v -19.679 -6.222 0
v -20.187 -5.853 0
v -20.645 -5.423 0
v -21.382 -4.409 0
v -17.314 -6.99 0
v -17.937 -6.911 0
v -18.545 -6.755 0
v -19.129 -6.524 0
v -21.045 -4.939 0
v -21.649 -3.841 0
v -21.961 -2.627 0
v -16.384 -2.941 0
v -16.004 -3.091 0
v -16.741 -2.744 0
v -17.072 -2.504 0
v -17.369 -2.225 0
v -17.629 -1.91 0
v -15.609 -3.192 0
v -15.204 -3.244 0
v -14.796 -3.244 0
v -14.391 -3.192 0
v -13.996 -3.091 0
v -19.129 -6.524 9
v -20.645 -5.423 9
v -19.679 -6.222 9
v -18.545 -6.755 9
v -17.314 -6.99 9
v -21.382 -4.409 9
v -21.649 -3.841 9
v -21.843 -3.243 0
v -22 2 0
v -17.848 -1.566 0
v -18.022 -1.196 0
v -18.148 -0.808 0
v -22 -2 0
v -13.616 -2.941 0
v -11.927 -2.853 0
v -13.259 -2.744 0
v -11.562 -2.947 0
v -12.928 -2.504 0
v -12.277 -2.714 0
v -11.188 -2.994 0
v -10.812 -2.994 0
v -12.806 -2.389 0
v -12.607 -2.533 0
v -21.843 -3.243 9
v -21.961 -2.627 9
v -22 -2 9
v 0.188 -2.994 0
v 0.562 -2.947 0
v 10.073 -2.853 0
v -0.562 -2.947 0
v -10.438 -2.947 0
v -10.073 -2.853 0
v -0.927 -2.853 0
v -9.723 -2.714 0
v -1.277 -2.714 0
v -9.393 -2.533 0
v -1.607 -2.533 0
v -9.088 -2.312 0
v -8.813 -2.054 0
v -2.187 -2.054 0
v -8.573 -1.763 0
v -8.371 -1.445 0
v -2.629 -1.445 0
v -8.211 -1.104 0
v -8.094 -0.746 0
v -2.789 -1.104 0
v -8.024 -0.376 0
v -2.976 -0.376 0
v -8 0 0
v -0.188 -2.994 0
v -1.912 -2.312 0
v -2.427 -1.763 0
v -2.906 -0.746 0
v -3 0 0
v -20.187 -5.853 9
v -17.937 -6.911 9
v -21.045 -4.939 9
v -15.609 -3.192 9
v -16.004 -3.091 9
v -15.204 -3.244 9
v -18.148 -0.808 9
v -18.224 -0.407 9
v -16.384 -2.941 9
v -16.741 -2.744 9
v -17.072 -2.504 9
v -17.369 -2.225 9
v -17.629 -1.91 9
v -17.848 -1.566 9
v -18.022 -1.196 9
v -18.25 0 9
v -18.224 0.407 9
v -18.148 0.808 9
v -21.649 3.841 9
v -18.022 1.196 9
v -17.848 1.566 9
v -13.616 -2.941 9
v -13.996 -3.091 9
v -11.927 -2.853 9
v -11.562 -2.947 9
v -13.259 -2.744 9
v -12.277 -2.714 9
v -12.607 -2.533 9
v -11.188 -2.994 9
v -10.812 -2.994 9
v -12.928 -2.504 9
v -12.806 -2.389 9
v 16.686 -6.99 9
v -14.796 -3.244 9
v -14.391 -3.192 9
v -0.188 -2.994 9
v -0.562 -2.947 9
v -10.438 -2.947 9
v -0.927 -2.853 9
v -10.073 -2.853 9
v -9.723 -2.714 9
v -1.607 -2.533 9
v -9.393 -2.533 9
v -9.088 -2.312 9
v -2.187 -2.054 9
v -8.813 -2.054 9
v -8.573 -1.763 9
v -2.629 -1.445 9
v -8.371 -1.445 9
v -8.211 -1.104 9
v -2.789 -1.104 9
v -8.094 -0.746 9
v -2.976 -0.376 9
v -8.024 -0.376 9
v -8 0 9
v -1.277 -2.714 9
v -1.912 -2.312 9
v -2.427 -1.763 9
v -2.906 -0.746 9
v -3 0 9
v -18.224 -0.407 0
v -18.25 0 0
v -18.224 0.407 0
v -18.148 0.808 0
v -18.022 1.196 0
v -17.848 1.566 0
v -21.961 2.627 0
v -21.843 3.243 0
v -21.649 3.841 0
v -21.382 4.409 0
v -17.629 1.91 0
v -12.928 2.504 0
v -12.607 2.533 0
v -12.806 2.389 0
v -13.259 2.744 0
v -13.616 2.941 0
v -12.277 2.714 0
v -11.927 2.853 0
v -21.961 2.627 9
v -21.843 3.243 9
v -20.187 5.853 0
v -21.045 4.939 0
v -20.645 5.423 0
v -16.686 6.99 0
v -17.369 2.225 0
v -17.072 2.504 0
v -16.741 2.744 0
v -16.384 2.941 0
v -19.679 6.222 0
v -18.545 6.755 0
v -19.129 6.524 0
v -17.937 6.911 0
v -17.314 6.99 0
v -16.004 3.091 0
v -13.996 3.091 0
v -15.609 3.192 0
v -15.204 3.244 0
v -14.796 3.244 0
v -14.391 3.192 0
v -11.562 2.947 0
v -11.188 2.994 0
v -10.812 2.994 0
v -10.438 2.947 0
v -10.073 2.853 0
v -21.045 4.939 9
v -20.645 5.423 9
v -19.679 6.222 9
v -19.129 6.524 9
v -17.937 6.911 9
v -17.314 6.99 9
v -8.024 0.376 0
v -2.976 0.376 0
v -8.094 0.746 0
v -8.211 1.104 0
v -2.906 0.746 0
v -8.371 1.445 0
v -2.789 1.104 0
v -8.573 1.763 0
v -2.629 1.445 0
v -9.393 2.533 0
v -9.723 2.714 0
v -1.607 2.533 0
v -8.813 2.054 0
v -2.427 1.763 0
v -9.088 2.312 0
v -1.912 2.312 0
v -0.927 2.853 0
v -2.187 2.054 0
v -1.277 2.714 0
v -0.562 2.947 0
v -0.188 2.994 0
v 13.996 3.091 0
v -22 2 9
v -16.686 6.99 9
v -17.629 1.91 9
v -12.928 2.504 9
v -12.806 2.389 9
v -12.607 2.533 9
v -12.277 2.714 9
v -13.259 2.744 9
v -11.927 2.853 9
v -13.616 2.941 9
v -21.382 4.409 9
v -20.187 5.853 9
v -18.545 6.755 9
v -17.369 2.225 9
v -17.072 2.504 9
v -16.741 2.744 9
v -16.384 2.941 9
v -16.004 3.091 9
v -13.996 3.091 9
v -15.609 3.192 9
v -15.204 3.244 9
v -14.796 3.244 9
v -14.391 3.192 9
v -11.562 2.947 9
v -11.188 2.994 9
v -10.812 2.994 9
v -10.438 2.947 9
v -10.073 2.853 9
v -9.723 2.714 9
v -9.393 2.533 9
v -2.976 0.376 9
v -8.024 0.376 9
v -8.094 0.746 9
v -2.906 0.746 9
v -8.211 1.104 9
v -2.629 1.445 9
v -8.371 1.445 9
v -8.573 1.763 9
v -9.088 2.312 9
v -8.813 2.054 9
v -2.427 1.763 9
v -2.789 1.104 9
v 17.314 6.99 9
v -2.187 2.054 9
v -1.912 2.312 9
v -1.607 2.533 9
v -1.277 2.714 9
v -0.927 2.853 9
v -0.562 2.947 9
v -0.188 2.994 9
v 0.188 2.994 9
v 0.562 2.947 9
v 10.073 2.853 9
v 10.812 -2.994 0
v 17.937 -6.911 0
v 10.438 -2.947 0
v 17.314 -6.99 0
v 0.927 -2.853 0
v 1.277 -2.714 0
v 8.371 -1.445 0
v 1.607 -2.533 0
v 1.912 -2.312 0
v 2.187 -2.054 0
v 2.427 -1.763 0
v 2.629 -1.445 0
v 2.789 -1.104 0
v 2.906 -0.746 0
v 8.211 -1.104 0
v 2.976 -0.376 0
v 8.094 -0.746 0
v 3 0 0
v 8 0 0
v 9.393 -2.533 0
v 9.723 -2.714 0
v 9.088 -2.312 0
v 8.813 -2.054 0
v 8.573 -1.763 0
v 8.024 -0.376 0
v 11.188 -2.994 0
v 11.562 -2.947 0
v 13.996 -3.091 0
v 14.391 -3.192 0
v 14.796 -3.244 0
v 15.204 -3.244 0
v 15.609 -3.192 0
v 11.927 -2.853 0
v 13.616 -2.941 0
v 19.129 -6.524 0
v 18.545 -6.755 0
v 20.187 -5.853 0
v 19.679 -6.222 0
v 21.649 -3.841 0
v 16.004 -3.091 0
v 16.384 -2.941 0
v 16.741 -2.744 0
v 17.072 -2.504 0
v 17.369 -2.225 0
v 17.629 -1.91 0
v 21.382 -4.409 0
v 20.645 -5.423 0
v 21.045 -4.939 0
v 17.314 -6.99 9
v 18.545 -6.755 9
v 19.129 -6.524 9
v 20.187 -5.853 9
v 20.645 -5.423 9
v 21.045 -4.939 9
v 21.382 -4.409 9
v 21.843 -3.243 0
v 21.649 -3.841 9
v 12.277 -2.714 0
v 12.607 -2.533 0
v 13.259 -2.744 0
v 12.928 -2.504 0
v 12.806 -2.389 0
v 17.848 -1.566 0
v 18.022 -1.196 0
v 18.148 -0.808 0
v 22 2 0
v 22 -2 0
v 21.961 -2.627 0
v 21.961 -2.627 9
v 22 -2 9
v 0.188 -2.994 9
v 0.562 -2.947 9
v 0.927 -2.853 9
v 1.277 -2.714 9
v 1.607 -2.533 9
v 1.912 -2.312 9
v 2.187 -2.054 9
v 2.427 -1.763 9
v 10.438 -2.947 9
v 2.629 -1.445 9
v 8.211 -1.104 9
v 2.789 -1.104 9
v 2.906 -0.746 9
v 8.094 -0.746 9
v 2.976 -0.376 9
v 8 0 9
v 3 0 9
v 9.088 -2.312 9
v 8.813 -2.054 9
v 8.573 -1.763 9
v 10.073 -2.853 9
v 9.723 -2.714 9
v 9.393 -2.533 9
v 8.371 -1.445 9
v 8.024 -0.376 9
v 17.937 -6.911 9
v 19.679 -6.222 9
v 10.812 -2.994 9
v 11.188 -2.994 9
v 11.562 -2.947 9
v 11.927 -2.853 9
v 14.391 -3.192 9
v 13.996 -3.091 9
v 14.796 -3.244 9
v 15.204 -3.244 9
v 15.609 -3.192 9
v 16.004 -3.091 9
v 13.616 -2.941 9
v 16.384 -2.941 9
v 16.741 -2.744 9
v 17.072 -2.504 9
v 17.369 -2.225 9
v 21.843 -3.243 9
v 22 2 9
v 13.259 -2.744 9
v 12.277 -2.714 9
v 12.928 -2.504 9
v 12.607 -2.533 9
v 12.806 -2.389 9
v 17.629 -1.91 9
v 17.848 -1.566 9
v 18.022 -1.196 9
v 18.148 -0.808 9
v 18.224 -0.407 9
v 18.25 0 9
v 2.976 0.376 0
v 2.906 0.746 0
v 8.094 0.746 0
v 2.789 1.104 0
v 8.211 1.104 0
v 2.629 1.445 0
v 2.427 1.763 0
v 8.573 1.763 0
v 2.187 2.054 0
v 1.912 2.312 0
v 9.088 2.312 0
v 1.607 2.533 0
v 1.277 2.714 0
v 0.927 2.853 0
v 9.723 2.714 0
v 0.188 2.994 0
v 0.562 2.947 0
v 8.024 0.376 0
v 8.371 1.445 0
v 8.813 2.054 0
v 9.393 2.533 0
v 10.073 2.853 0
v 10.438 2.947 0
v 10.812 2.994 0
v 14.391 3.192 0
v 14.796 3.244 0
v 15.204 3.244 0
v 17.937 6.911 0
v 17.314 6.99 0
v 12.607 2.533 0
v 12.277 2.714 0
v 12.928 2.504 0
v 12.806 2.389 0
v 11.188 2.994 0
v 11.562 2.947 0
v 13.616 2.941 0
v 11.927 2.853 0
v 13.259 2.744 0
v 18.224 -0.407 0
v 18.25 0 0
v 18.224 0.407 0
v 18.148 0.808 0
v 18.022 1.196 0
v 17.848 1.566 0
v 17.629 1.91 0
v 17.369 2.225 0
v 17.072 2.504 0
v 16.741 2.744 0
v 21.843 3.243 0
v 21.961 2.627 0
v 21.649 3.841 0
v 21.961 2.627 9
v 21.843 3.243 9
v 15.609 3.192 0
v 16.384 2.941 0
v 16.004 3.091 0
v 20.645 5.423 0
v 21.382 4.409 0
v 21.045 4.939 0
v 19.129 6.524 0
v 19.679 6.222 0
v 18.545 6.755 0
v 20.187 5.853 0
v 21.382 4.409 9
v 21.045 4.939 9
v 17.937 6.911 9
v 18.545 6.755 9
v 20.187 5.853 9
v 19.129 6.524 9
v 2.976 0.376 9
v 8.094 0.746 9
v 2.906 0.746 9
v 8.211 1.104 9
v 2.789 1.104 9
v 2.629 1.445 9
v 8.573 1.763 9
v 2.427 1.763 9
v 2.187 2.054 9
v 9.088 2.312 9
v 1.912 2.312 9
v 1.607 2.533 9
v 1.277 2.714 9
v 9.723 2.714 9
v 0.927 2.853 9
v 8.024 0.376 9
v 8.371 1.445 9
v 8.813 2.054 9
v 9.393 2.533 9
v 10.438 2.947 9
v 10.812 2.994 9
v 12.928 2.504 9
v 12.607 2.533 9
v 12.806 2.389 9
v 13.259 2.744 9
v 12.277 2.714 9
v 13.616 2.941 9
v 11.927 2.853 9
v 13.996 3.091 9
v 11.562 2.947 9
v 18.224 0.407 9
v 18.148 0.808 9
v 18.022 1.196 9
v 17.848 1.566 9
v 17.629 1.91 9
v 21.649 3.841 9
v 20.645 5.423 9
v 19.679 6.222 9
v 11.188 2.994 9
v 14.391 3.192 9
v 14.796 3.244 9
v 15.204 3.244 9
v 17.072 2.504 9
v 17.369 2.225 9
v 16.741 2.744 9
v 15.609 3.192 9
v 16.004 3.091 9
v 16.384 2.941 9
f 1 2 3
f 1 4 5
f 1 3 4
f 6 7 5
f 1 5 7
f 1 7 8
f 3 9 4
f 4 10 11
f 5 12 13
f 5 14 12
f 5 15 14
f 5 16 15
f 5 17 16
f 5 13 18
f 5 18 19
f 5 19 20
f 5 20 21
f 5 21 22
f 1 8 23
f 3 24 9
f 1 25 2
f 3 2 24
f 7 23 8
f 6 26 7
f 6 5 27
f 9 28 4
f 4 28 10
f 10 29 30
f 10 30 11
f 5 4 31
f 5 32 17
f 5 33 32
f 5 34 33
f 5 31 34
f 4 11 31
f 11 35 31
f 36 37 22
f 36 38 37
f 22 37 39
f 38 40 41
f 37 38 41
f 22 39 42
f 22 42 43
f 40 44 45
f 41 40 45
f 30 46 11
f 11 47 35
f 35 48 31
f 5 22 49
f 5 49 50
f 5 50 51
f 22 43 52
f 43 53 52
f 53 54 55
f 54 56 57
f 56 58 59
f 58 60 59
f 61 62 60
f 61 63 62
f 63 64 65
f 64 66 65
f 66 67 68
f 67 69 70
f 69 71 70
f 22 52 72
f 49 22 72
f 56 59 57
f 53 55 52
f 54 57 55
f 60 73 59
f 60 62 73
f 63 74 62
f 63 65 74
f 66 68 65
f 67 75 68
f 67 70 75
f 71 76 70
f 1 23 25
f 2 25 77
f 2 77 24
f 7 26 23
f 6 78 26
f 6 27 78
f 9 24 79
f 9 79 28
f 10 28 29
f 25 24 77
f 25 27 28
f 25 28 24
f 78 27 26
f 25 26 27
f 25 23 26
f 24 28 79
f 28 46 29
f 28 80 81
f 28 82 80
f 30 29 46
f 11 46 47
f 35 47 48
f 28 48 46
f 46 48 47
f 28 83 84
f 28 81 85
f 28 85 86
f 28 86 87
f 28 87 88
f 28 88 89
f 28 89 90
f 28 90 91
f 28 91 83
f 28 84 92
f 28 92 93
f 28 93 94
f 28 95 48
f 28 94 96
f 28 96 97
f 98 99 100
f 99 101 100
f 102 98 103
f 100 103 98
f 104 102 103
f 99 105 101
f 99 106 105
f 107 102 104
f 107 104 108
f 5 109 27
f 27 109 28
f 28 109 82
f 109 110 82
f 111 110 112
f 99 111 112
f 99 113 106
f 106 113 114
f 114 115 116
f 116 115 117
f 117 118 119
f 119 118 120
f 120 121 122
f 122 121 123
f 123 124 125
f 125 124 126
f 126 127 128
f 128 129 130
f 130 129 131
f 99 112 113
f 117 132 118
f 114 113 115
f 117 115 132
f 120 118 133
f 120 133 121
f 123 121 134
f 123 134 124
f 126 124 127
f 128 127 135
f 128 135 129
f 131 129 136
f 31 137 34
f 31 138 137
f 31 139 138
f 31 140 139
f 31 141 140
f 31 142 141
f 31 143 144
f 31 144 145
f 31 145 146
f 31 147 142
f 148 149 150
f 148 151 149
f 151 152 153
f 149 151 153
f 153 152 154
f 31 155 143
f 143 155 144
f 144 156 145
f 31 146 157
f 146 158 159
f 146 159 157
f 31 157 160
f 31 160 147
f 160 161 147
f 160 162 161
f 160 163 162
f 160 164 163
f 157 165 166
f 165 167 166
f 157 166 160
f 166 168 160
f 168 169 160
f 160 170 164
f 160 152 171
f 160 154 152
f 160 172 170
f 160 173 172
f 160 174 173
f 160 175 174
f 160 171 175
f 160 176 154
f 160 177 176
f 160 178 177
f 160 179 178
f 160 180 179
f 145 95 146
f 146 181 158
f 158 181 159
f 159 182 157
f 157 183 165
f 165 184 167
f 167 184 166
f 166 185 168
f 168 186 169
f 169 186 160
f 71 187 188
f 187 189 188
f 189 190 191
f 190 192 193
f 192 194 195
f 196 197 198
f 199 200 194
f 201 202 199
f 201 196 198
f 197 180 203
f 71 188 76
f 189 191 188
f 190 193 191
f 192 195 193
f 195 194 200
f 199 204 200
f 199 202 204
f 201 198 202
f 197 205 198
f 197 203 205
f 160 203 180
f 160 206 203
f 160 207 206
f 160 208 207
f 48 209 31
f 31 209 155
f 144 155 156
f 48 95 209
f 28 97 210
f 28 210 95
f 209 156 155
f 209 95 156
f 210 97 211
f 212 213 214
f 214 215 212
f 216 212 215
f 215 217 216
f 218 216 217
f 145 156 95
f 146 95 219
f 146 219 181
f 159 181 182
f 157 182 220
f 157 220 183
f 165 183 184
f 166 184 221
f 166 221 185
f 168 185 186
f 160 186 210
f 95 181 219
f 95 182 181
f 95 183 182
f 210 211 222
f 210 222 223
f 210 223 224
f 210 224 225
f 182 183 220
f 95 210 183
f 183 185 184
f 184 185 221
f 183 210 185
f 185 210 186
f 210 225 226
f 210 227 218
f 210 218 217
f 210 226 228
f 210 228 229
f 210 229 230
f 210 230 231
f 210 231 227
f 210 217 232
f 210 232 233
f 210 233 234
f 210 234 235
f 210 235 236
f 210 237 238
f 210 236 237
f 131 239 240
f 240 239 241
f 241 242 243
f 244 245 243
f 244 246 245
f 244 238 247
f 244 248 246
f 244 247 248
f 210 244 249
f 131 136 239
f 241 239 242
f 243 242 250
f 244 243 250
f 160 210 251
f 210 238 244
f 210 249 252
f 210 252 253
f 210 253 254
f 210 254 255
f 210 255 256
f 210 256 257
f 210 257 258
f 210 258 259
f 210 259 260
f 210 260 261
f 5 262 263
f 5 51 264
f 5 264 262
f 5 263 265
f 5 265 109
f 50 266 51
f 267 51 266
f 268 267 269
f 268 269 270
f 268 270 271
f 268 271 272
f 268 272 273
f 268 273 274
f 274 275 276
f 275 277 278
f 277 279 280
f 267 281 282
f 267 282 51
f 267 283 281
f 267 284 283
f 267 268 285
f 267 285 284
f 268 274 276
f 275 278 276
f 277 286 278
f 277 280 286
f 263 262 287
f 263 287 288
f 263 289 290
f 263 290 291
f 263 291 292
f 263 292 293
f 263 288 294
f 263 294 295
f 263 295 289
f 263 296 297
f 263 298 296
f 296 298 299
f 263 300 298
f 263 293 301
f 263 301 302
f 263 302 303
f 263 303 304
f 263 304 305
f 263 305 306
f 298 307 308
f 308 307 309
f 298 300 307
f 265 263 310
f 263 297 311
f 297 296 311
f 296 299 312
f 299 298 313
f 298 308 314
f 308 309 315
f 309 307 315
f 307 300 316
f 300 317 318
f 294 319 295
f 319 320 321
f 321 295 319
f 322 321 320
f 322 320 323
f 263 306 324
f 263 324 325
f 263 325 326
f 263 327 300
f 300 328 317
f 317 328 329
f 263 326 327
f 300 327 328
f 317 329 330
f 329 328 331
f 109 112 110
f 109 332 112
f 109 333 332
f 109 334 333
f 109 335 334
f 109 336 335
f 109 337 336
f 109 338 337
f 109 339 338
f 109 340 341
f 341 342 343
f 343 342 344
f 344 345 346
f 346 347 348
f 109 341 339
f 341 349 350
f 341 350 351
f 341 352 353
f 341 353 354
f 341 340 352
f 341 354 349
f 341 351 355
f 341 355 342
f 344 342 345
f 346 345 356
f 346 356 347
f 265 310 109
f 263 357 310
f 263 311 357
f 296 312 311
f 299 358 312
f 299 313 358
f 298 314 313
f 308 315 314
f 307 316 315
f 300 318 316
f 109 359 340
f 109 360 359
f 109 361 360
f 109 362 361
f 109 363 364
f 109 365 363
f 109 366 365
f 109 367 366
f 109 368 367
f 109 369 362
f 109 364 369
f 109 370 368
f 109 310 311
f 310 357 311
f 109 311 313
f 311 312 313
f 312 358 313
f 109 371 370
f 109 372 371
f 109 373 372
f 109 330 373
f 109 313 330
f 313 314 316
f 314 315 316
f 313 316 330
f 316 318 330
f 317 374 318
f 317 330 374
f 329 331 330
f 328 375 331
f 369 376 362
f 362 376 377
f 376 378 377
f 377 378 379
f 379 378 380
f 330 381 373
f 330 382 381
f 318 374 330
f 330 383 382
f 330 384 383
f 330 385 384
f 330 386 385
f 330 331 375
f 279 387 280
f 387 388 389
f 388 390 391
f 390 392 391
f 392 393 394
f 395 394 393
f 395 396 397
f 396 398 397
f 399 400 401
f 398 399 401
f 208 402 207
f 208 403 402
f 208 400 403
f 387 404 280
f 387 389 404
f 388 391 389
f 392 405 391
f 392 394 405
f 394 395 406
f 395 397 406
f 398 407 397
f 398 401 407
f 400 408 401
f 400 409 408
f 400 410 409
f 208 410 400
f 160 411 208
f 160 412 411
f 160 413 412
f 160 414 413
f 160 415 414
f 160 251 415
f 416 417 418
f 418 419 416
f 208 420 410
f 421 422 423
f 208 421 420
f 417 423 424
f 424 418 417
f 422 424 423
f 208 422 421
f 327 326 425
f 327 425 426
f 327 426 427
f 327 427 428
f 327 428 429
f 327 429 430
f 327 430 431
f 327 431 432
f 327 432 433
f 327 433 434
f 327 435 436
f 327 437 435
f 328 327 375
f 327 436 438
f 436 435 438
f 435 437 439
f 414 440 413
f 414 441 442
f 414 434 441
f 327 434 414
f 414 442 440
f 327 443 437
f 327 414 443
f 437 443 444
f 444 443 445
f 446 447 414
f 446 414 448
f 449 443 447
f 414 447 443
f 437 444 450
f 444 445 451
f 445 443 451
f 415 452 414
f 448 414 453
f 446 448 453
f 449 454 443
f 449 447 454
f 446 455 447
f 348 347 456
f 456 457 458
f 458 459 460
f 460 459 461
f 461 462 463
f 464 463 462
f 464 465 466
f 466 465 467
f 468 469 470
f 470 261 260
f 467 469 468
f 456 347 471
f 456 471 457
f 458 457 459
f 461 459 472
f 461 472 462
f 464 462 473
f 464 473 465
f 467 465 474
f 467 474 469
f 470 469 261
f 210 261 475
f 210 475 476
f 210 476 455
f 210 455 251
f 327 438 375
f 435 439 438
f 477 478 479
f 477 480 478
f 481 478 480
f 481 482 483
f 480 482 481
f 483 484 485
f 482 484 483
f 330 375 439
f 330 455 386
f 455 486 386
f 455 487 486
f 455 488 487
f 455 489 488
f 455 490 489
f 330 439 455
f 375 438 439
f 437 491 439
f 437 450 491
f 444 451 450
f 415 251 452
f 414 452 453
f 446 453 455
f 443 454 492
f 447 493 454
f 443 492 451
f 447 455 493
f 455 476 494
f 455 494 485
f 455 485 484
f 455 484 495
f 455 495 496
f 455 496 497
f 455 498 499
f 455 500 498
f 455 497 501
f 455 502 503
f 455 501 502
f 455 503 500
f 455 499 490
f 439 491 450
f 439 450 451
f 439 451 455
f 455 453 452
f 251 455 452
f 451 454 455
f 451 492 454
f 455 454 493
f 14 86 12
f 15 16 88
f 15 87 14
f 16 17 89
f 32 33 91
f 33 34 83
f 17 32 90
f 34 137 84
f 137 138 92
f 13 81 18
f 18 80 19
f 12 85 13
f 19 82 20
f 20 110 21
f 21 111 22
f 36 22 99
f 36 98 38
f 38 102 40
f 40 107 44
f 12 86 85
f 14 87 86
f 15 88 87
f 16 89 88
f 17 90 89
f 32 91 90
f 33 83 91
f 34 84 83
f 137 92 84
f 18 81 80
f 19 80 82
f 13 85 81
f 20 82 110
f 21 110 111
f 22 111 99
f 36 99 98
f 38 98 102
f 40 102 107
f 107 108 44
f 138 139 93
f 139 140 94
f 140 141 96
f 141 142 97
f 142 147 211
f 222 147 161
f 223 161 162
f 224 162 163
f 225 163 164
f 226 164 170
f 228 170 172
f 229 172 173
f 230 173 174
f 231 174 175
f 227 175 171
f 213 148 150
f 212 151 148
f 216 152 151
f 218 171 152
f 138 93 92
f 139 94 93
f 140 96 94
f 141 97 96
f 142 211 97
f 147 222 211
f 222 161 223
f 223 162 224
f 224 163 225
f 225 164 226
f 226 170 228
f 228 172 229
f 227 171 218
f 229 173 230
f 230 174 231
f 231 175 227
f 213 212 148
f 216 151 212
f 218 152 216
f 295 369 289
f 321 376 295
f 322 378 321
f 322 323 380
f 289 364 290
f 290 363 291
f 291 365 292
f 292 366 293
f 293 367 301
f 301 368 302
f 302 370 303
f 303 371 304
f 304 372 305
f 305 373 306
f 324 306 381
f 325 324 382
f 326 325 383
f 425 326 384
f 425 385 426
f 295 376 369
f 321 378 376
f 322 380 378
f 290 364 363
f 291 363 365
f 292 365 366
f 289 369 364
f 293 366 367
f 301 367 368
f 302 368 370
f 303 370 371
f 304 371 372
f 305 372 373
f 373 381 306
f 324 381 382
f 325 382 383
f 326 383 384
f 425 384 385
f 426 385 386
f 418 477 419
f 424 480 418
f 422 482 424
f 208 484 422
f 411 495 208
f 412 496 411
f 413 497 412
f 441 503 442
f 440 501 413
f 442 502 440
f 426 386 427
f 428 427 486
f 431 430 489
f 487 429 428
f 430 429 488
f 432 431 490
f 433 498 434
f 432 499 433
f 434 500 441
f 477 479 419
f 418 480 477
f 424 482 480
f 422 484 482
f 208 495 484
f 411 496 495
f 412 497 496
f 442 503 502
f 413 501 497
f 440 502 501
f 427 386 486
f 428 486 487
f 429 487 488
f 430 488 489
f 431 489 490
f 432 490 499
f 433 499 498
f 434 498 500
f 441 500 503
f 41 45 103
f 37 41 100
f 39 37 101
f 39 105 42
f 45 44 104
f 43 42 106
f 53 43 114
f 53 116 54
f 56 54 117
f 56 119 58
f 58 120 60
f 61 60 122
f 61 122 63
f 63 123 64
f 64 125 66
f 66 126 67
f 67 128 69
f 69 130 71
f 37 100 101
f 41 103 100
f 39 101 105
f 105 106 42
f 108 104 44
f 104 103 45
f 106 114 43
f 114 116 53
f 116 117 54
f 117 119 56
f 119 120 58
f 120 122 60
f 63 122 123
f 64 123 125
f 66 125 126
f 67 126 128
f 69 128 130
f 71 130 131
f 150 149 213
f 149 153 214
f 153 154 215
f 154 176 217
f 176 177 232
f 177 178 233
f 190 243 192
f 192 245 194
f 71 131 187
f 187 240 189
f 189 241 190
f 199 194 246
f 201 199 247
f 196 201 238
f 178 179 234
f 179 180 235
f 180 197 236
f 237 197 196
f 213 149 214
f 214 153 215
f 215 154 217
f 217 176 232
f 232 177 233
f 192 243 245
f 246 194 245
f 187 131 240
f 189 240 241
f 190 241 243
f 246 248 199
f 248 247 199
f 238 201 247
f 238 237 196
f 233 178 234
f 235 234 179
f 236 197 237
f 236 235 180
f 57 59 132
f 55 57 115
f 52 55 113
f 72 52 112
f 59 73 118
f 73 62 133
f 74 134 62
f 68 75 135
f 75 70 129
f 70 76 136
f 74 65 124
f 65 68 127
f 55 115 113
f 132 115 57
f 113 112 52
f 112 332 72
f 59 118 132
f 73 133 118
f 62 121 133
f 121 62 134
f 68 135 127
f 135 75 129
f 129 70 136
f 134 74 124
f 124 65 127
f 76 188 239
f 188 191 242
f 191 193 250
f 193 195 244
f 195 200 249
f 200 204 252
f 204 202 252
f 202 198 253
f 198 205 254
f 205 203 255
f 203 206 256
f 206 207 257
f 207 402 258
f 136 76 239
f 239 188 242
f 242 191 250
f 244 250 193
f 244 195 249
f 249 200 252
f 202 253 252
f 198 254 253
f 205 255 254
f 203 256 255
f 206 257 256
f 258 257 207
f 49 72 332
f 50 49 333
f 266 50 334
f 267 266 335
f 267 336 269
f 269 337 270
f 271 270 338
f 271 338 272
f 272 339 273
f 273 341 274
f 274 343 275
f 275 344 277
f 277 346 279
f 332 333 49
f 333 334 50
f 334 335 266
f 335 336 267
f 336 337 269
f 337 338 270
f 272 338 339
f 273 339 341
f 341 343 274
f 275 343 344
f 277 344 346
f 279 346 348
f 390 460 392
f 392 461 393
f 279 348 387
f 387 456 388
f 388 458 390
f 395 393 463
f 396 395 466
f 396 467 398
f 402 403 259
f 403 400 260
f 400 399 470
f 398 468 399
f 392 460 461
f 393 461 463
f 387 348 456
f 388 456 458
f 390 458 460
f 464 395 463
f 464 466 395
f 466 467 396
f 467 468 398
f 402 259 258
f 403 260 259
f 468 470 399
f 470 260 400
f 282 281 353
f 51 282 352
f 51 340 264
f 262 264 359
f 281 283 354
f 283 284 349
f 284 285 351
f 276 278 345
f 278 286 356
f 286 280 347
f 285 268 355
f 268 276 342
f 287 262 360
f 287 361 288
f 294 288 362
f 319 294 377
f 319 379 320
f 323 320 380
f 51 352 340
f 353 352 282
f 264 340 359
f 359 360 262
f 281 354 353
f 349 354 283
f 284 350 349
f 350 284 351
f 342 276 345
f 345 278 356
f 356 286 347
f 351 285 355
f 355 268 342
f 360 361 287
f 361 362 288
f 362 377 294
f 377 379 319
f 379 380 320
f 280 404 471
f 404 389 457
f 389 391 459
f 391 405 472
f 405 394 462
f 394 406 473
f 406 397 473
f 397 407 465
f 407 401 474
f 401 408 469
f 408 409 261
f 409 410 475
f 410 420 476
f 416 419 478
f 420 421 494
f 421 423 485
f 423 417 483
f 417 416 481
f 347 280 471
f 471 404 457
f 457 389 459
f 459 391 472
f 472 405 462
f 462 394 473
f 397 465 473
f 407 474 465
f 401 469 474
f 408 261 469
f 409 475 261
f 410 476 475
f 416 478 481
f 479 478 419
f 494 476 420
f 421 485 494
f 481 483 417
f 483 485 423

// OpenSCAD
$fn = 50;

difference() {
	union() {
		hull() {
			translate(v = [-17.0, 2.0, 0]) {
				cylinder(h = 9, r = 5);
			}
			translate(v = [17.0, 2.0, 0]) {
				cylinder(h = 9, r = 5);
			}
			translate(v = [-17.0, -2.0, 0]) {
				cylinder(h = 9, r = 5);
			}
			translate(v = [17.0, -2.0, 0]) {
				cylinder(h = 9, r = 5);
			}
		}
	}
	union() {
		translate(v = [-15.0, 0.0, -100.0]) {
			cylinder(h = 200, r = 3.25);
		}
		translate(v = [15.0, 0.0, -100.0]) {
			cylinder(h = 200, r = 3.25);
		}
		translate(v = [-15.0, 0.0, -100.0]) {
			cylinder(h = 200, r = 1.8);
		}
		translate(v = [15.0, 0.0, -100.0]) {
			cylinder(h = 200, r = 1.8);
		}
		translate(v = [-11.0, 0, 0.0]) {
			cylinder(h = 9, r = 3.0);
		}
		cylinder(h = 9, r = 3.0);
		translate(v = [11.0, 0, 0.0]) {
			cylinder(h = 9, r = 3.0);
		}
	}
}
